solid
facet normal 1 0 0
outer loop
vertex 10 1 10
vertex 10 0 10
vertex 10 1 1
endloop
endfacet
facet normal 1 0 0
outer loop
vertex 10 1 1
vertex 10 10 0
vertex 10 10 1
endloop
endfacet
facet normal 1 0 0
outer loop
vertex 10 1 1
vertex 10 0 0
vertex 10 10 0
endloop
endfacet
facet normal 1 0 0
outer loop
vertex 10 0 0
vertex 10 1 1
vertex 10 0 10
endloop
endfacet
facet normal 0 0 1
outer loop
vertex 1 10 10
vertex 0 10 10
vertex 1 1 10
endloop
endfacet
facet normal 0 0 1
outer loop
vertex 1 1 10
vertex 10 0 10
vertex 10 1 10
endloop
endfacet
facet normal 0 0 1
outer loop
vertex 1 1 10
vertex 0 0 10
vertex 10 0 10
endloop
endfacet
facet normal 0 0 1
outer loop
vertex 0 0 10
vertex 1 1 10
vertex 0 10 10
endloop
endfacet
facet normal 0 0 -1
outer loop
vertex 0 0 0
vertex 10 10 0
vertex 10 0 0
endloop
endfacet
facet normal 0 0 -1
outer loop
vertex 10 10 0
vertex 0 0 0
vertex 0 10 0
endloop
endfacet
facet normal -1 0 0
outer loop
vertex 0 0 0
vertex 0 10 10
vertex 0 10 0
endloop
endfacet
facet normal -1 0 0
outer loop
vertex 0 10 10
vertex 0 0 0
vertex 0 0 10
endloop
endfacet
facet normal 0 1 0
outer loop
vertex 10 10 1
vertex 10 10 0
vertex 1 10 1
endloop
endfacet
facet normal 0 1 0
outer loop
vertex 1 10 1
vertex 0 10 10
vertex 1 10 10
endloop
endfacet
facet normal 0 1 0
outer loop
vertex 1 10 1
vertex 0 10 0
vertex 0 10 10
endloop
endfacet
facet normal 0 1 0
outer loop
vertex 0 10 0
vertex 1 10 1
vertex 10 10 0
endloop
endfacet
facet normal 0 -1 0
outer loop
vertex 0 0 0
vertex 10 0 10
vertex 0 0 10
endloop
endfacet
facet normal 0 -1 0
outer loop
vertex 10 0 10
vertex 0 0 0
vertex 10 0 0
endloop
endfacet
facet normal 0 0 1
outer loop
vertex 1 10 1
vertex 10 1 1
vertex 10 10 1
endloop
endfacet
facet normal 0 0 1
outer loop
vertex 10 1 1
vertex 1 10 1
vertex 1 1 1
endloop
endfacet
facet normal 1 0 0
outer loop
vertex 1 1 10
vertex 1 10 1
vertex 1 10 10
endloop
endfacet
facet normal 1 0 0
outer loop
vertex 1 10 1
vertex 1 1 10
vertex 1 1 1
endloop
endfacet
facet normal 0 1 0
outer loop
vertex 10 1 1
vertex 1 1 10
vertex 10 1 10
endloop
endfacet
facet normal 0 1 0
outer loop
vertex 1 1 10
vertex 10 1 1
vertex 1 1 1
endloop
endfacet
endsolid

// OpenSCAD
difference() {
  cube(10);
  translate([1,1,1])
  cube(10);
}
